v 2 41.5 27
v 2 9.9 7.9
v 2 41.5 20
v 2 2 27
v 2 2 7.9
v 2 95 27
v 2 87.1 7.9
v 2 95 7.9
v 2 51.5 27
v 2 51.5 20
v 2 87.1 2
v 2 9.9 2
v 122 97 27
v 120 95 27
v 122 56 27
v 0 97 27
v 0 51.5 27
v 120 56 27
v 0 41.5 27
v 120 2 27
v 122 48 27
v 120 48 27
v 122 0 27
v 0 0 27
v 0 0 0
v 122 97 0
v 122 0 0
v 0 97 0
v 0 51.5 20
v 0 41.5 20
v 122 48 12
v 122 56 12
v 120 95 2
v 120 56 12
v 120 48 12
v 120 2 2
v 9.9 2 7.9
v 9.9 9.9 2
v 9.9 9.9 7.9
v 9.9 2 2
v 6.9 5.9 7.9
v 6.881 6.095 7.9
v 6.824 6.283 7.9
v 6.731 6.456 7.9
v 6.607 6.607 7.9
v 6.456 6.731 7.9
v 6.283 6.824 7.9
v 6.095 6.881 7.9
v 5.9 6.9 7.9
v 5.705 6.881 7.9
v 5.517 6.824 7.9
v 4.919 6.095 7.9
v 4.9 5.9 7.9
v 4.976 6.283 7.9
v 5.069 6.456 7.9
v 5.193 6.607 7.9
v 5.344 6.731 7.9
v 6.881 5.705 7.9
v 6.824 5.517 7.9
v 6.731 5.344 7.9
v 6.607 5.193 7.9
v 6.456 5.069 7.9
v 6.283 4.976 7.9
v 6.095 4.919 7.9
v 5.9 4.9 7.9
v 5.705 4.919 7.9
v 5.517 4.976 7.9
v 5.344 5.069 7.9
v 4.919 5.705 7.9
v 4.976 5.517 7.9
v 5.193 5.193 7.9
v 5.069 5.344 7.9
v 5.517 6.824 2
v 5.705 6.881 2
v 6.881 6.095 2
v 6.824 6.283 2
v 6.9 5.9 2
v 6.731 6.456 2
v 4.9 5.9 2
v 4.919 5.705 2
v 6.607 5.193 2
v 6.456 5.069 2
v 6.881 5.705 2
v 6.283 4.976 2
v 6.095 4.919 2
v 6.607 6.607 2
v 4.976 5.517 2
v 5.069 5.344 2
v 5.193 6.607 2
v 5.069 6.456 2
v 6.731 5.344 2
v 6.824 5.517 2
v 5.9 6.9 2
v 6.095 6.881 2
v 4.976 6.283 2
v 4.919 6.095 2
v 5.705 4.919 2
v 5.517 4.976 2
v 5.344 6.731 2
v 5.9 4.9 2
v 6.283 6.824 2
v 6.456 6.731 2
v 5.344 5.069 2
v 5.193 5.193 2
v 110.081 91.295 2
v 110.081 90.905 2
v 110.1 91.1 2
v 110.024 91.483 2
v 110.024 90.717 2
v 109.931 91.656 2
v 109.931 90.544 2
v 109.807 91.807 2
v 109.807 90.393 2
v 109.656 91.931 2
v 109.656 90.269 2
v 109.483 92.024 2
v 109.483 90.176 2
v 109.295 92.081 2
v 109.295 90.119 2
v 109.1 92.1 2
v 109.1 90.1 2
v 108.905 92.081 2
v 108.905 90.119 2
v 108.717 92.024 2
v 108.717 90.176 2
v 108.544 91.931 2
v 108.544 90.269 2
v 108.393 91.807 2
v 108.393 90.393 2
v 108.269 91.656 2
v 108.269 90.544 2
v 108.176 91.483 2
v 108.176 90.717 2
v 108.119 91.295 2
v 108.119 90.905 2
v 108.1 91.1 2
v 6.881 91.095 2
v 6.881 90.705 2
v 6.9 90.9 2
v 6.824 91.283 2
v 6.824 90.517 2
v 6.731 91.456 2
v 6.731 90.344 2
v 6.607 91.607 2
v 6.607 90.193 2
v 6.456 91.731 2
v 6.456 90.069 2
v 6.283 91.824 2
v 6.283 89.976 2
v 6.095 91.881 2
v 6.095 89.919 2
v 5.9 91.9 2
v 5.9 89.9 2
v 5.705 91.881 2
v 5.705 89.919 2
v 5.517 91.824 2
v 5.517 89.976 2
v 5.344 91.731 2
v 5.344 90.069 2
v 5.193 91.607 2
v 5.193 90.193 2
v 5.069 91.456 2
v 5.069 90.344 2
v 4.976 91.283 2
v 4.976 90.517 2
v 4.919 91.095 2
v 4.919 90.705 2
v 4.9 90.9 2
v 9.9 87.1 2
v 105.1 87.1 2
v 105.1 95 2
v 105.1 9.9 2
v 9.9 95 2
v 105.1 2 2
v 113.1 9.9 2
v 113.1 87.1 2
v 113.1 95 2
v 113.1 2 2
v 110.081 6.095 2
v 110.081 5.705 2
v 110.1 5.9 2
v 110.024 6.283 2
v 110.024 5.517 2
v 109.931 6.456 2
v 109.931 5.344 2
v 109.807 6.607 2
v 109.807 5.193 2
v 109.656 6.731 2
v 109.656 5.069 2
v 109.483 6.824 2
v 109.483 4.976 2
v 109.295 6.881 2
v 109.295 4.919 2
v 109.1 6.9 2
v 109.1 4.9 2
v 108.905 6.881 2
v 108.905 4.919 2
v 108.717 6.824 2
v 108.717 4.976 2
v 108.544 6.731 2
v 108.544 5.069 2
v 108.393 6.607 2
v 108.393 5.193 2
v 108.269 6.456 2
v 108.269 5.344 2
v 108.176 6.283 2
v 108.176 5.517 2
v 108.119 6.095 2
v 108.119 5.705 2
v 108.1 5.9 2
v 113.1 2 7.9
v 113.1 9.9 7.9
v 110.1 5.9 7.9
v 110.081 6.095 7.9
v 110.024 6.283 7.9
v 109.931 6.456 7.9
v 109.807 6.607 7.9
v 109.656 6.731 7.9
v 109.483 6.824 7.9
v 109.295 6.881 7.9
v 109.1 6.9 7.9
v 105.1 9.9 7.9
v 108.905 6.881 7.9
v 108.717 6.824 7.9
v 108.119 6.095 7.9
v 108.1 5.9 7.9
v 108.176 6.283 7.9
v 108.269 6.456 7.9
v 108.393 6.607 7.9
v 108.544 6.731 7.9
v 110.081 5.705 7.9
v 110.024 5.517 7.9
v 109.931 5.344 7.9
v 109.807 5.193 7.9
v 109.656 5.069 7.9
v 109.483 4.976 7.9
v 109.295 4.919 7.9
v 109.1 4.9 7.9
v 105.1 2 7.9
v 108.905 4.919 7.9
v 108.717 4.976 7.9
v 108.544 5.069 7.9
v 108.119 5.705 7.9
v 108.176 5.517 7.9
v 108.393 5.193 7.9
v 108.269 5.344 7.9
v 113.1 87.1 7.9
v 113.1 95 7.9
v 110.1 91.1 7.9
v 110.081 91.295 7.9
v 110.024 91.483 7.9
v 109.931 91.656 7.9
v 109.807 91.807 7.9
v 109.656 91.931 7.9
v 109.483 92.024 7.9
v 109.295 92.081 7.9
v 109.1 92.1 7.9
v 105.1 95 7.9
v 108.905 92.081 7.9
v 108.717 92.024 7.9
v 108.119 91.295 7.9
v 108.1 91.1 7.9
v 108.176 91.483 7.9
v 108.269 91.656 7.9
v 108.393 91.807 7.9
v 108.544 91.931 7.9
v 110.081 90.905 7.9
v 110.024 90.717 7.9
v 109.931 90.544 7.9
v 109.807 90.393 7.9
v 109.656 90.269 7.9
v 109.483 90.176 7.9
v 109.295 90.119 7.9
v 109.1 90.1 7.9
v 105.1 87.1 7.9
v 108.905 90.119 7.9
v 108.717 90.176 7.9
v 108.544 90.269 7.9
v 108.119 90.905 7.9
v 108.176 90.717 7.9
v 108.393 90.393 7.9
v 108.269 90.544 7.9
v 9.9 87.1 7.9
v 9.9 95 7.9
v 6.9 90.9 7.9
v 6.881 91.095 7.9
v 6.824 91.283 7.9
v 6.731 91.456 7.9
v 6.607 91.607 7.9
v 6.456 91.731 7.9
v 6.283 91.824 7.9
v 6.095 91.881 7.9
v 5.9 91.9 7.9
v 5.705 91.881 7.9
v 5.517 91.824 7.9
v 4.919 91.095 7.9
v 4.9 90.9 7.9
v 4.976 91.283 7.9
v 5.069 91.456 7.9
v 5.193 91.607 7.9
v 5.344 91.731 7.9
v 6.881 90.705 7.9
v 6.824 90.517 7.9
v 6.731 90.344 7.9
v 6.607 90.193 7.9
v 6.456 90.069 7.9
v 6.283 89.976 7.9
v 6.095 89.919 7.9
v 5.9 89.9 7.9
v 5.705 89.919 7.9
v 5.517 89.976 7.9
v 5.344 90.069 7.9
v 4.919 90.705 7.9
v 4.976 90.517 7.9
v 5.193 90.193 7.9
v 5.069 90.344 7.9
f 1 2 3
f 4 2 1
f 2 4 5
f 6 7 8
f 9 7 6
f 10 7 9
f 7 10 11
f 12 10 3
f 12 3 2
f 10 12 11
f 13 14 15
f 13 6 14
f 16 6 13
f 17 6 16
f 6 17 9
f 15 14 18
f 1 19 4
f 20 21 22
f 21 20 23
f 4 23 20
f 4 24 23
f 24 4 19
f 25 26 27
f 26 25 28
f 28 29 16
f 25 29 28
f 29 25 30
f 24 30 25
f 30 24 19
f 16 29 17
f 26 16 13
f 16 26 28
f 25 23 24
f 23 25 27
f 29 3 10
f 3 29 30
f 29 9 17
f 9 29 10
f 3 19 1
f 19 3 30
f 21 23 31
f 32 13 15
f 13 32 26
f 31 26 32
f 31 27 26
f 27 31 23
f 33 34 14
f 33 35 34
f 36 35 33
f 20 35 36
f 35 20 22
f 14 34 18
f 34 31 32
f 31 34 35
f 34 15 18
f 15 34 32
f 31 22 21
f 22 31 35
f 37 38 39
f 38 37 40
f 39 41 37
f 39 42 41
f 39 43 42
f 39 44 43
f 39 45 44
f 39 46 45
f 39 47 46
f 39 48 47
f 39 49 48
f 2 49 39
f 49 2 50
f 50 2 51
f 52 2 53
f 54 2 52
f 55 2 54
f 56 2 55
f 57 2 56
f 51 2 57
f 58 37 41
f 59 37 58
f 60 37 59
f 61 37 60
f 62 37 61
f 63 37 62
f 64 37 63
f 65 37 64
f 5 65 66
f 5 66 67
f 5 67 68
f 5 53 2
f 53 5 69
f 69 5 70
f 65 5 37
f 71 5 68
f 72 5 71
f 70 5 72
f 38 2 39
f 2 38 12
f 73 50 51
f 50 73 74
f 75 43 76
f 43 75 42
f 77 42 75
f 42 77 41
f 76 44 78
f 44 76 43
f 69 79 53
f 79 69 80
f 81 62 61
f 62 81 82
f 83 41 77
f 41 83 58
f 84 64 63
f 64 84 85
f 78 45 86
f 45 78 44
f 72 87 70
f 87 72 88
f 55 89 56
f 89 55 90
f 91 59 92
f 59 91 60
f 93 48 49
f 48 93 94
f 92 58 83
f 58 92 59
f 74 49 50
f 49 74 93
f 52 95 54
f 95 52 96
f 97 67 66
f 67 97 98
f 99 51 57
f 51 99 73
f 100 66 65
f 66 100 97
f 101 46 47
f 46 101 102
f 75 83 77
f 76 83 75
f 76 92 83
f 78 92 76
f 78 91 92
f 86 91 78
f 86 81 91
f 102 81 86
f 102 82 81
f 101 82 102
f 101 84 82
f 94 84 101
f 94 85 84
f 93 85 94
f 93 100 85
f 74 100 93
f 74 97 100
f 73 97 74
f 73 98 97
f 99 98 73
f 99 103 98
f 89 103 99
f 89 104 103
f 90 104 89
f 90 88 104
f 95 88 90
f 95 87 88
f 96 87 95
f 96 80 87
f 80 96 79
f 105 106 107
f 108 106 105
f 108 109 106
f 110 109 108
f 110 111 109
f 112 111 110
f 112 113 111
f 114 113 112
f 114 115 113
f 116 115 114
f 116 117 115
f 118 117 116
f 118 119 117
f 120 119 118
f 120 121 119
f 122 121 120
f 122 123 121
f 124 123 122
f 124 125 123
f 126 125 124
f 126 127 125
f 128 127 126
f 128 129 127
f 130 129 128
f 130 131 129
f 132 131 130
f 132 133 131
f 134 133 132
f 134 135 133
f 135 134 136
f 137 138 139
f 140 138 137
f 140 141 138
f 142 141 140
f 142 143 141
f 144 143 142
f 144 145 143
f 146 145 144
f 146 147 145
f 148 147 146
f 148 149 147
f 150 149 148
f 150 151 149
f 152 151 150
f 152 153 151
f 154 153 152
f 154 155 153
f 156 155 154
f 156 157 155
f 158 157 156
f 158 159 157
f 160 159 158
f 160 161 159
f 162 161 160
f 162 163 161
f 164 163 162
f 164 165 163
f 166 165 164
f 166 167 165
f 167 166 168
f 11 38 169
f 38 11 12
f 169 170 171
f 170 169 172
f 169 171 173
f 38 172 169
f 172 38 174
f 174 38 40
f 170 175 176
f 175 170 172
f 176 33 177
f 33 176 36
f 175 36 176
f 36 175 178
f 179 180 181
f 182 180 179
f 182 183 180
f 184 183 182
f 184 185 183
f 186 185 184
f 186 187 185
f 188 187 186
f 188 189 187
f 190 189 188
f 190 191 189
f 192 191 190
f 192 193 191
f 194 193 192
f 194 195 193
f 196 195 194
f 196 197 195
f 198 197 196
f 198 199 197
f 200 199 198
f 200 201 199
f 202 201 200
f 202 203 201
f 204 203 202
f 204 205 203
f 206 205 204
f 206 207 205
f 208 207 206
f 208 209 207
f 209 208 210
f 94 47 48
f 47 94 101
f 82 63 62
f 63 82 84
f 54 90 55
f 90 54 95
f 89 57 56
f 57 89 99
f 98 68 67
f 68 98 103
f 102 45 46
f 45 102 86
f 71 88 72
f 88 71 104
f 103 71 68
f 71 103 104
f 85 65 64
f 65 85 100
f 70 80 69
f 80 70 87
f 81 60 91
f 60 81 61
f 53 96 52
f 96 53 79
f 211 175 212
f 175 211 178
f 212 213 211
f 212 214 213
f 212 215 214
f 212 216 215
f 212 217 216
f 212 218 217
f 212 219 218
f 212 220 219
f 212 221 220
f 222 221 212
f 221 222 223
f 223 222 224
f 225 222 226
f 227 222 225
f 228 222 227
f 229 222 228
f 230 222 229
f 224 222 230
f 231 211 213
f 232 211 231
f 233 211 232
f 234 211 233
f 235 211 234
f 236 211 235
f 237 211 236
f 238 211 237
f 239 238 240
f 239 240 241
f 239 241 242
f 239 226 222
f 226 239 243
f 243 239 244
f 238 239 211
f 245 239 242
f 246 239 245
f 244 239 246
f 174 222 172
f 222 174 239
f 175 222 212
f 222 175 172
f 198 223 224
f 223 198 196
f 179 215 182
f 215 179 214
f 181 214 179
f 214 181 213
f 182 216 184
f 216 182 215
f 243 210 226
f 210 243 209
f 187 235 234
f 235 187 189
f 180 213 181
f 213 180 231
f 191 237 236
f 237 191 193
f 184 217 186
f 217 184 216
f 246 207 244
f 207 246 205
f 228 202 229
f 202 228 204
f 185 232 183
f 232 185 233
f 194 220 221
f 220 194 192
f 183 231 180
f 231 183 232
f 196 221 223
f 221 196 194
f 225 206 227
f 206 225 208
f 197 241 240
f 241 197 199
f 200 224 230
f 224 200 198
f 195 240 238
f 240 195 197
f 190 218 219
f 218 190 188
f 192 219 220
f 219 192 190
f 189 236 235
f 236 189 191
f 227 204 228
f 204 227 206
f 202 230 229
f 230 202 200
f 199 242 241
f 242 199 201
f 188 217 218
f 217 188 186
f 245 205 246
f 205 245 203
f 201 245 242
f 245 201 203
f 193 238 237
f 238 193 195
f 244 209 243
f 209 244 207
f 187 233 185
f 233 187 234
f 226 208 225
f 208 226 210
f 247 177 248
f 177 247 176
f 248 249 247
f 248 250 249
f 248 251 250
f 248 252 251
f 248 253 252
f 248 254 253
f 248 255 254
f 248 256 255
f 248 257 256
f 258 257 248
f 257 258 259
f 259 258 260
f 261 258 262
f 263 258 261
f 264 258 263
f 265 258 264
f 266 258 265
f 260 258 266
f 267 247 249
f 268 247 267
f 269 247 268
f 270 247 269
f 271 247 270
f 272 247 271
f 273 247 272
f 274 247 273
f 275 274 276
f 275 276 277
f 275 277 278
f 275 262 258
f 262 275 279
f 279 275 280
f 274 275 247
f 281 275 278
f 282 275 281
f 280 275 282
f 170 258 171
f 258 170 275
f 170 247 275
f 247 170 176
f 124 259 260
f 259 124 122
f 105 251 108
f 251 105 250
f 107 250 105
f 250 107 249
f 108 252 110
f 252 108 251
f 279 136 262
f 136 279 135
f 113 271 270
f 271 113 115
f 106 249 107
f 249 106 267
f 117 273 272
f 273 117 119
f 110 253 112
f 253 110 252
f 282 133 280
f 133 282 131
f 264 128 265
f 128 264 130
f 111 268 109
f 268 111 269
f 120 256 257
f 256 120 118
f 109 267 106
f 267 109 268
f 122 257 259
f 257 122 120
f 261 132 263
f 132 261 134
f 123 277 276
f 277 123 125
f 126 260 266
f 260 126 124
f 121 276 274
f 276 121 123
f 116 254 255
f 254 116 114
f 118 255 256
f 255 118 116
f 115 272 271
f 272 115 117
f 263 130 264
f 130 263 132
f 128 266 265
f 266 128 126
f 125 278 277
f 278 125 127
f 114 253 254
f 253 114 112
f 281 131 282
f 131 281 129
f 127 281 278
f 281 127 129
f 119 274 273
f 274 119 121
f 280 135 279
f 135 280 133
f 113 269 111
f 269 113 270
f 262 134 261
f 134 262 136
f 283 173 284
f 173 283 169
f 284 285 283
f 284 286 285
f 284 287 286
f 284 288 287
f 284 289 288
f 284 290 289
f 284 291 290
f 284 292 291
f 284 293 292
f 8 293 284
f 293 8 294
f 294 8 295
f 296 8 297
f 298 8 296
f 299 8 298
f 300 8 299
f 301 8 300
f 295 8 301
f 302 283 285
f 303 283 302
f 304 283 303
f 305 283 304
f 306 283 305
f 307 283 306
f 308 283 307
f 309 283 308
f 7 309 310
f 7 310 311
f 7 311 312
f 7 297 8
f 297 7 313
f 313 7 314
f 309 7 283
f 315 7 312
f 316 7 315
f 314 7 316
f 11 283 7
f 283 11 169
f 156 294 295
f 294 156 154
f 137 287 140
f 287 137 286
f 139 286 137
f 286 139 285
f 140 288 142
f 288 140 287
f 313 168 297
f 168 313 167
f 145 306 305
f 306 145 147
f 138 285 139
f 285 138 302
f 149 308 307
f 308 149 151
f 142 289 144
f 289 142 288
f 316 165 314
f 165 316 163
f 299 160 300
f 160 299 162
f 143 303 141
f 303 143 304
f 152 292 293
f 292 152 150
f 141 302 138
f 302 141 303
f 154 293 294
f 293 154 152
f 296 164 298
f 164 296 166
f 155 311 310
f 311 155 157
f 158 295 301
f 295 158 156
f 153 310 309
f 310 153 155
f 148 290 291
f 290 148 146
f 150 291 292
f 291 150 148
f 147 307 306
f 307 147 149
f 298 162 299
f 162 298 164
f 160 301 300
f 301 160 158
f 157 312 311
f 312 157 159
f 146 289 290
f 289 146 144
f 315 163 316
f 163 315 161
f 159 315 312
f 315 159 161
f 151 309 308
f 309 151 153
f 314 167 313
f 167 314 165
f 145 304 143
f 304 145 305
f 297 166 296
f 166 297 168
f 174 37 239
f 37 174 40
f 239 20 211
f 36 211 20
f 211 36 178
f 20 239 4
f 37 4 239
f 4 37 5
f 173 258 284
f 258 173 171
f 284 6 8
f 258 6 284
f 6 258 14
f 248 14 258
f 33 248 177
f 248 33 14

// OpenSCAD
///////////////////////////////////////////////////
/// @file CHEEPROM_2026_PROTO_CASE
/// @brief case for the prototype
/// @copyright William R Cooke 2026
///////////////////////////////////////////////////
$fa = 1.0;
$fs = 0.2;

thick = 2.0;
width = 118;
depth = 93;

post_size = 8;
half_post_sz = post_size / 2;
post_height = 6;
height = post_height + 19;


// bottom
cube([width + 2 * thick, depth + 2 * thick, thick]);
// sides
cube([width + 2 * thick, thick, height + thick]);
translate([0, depth + thick, 0])
  cube([width + 2 * thick, thick, height + thick]);
  
// ends
difference()
{
  cube([thick, depth + 2 * thick, height + thick]);
  // removeusb connector
  translate([0,depth/2, height])
    cube([10,10,10], center = true);
}
difference()
{
  translate([width + thick, 0, 0])
    cube([thick, depth + 2* thick, height + thick]);
  // remove socket lever
    translate([width,48,post_height + 6])
    cube([8, 8, 16]);
}



// mounting posts
difference()
{
  translate([thick - 0.1, thick - 0.1, thick - 0.1]) 
    cube([post_size, post_size, post_height]);
  translate([thick -0.1 + half_post_sz, 
             thick - 0.1 + half_post_sz,
             thick]) 
    cylinder(post_height + 2,1,1);
}

difference()
{
  translate([103 + thick + 0.1, thick - 0.1, thick - 0.1]) 
    cube([post_size, post_size, post_height]);
  translate([103 + thick + 0.1 + half_post_sz, 
             thick - 0.1 + half_post_sz, 
             thick - 0.1]) 
    cylinder(post_height + 2, 1, 1);
}

difference()
{
  translate([103 + thick + 0.1, 
             depth - post_size + thick + 0.1,
             thick - 0.1])
    cube([post_size, post_size, post_height]);
  translate([103 + thick + 0.1 + half_post_sz, 
             depth - post_size + thick + 0.1 + half_post_sz,
             thick])
    cylinder(post_height + 2, 1, 1);
}

difference()
{
  translate([thick - 0.1, depth - post_size + thick + 0.1, 
             thick - 0.1]) 
    cube([post_size, post_size, post_height]);
  translate([thick -0.1 + half_post_sz, 
             depth - post_size + thick - 0.1 + half_post_sz,
             thick ]) 
    cylinder(post_height + 2,1,1);
}
  
